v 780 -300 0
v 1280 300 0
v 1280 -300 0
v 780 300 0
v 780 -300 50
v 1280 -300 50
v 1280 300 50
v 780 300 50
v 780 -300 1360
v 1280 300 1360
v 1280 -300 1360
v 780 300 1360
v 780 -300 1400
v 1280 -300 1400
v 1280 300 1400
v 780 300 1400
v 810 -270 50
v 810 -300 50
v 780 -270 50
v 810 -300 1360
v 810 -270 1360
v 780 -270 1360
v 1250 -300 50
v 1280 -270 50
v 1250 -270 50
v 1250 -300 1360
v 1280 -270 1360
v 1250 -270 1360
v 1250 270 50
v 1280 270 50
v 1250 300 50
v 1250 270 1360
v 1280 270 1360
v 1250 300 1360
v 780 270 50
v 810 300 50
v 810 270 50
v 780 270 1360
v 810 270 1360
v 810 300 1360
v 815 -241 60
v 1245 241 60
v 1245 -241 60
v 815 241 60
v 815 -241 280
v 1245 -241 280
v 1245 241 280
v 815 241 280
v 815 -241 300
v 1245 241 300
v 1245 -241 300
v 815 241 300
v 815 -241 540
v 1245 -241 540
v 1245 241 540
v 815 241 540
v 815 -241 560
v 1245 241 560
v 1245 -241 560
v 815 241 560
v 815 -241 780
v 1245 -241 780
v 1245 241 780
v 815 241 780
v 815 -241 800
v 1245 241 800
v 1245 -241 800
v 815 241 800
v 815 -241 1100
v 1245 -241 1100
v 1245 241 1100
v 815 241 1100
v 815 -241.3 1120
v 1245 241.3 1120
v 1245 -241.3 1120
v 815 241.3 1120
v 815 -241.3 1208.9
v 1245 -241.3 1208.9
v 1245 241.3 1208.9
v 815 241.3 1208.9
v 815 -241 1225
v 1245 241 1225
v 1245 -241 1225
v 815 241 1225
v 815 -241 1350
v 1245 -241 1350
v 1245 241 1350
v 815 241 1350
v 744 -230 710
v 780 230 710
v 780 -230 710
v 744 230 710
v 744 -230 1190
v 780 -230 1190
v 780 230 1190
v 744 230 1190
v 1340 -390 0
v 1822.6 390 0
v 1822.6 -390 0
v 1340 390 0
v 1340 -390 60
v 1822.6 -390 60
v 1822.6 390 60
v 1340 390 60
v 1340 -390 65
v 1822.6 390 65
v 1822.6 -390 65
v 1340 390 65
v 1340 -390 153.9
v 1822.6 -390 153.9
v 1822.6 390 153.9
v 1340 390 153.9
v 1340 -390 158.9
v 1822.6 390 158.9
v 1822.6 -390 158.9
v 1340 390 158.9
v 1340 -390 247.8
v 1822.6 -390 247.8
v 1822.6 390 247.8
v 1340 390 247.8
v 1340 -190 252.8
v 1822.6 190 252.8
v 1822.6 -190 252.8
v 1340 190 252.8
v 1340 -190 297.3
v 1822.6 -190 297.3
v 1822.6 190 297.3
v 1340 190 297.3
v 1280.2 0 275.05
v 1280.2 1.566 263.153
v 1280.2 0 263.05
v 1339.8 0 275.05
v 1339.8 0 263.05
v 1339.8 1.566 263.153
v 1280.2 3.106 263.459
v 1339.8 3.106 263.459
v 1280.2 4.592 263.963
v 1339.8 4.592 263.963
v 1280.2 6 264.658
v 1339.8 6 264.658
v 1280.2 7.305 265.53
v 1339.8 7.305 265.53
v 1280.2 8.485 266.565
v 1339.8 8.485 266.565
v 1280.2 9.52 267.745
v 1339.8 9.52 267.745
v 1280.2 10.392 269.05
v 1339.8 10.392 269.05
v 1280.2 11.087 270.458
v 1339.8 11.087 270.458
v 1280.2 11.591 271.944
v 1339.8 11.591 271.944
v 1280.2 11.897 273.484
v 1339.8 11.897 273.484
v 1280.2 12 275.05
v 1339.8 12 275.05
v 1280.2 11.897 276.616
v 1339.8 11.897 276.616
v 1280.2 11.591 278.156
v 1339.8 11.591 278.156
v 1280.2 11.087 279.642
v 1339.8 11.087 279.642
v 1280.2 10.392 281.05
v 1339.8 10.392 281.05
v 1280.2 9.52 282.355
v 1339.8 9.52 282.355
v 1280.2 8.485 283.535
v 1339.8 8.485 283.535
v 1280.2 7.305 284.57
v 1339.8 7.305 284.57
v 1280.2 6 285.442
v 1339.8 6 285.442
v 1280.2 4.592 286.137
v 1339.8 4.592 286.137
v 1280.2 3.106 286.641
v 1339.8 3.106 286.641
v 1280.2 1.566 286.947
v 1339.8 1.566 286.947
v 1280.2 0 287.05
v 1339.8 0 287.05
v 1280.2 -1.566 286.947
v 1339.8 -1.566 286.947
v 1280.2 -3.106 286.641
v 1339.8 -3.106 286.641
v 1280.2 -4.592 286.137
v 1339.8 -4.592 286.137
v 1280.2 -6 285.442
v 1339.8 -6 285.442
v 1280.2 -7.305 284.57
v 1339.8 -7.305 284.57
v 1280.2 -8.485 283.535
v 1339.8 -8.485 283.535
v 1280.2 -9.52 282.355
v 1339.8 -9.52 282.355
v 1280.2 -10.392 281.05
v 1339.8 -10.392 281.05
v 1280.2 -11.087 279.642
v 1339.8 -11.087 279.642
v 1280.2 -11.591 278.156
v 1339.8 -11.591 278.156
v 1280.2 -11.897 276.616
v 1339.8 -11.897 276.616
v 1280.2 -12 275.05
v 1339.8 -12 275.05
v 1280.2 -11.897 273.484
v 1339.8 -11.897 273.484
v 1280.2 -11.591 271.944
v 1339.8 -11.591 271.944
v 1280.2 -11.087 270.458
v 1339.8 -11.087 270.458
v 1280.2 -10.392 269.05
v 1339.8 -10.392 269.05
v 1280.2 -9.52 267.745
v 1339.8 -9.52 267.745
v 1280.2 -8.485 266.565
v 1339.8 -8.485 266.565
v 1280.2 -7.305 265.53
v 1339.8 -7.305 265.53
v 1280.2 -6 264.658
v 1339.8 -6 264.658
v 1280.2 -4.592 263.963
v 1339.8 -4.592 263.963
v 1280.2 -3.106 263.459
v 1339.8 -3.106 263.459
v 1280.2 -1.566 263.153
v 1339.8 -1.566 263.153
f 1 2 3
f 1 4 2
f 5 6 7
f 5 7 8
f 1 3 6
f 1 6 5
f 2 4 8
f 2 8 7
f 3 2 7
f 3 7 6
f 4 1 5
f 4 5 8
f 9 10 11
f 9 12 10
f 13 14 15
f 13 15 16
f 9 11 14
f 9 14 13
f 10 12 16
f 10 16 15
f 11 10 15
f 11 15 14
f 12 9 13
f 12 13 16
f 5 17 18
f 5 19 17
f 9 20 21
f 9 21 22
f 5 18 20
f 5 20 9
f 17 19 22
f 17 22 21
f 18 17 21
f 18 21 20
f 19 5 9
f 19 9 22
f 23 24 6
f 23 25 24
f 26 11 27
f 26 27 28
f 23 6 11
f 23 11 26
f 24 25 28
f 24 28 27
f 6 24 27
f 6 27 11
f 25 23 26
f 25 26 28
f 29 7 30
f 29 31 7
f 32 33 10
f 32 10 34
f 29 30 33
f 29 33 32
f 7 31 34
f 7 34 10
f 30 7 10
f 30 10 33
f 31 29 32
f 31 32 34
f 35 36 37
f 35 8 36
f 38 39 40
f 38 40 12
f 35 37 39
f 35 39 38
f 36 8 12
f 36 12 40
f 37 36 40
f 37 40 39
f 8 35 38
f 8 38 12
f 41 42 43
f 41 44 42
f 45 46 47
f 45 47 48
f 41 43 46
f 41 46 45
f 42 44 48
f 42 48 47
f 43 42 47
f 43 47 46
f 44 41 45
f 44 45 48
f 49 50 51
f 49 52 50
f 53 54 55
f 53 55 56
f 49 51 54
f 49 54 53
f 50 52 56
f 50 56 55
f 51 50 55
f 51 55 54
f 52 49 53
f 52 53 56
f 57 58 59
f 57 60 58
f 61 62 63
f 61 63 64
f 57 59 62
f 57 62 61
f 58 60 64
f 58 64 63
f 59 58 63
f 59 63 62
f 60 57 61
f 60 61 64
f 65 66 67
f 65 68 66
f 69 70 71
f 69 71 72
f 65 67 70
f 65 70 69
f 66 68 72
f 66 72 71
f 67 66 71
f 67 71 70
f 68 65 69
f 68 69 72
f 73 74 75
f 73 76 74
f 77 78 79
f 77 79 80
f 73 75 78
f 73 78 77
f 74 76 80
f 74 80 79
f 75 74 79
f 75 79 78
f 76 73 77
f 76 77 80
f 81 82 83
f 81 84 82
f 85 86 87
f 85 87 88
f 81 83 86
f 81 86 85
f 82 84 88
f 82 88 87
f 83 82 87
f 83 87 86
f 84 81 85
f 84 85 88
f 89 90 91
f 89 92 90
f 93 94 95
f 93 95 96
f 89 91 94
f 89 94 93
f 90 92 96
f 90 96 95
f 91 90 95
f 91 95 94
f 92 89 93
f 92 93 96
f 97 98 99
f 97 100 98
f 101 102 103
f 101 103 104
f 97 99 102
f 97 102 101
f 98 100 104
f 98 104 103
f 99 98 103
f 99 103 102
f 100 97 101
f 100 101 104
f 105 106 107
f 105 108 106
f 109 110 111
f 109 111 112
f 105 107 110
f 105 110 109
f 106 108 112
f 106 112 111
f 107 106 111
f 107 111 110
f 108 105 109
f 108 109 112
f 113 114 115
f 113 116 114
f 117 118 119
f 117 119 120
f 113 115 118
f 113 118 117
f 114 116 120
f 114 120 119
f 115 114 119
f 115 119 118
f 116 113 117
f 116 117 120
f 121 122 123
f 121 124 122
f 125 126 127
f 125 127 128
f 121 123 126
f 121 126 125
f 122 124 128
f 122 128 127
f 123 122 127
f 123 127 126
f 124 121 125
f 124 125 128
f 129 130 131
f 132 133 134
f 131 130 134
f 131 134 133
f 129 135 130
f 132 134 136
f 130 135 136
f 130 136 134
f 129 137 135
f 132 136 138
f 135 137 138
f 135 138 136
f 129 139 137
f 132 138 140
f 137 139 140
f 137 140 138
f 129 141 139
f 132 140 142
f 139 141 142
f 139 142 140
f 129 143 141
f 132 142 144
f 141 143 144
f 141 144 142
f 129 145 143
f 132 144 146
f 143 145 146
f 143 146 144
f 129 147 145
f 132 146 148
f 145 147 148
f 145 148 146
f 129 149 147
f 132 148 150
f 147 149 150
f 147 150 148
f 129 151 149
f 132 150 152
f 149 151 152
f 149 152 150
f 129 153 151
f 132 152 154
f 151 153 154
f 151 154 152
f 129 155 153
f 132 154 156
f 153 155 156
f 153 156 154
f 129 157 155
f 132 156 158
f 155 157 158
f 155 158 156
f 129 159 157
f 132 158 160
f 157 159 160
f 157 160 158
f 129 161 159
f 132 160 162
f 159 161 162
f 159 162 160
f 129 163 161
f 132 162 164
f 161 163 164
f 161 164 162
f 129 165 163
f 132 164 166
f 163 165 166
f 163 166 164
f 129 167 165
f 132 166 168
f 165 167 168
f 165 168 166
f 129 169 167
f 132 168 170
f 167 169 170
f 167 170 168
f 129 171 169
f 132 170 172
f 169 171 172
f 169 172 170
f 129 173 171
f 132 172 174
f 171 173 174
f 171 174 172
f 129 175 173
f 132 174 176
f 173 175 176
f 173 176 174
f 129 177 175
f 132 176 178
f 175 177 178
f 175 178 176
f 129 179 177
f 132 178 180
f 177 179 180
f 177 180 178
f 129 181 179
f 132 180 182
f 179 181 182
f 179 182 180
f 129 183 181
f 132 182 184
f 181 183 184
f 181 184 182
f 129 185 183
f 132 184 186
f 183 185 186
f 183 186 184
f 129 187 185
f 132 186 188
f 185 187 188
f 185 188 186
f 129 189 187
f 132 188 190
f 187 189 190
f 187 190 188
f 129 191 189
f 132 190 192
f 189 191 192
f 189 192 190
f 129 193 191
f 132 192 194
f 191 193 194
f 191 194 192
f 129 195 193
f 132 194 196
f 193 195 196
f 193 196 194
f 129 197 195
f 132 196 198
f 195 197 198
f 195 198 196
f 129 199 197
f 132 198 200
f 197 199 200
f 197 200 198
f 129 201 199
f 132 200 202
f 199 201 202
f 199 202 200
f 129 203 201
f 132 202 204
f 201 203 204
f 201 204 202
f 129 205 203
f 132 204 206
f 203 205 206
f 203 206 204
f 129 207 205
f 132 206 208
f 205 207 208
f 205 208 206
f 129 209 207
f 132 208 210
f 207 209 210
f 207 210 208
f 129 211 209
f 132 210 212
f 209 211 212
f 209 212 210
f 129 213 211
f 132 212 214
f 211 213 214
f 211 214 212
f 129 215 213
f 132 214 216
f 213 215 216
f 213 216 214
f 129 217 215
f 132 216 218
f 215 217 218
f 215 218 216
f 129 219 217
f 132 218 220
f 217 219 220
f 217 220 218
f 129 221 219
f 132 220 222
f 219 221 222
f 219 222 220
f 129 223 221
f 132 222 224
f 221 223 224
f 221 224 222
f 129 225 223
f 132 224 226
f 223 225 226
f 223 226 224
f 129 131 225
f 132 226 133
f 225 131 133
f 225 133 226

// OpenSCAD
// Atom Lithography Machine (6.0-exp142-exp143-option-qhpc-locked) — S7: 19" Kontrol, S6.5 RFSoC & Exp143 S9.HPC 100G RDMA Dekoder
// Drawing No: ALM-600-S7 | Units: mm | Tol: ISO 2768-mK
// Generated by gen_scad.py from params.py — DO NOT EDIT DIRECTLY.
$fn = 48;

module s7_electronics_rack_interconnect() {
  // s7_rack_base [S7.1] 19" Kabin Taban Şasisi (rack_chassis, ±0.5 mm)
  color([0.216, 0.255, 0.318], 1.0) translate([1030.0, 0.0, 25.0])
    cube([500.0, 600.0, 50.0], center=true);
  // s7_rack_top [S7.1] 19" Kabin Üst Tavan & Fan Ünitesi (rack_chassis, ±0.5 mm)
  color([0.216, 0.255, 0.318], 1.0) translate([1030.0, 0.0, 1380.0])
    cube([500.0, 600.0, 40.0], center=true);
  // s7_rack_post_1 [S7.1] 19" Kabin Köşe Dikmesi #1 (rack_chassis, ±0.5 mm)
  color([0.216, 0.255, 0.318], 1.0) translate([795.0, -285.0, 705.0])
    cube([30.0, 30.0, 1310.0], center=true);
  // s7_rack_post_2 [S7.1] 19" Kabin Köşe Dikmesi #2 (rack_chassis, ±0.5 mm)
  color([0.216, 0.255, 0.318], 1.0) translate([1265.0, -285.0, 705.0])
    cube([30.0, 30.0, 1310.0], center=true);
  // s7_rack_post_3 [S7.1] 19" Kabin Köşe Dikmesi #3 (rack_chassis, ±0.5 mm)
  color([0.216, 0.255, 0.318], 1.0) translate([1265.0, 285.0, 705.0])
    cube([30.0, 30.0, 1310.0], center=true);
  // s7_rack_post_4 [S7.1] 19" Kabin Köşe Dikmesi #4 (rack_chassis, ±0.5 mm)
  color([0.216, 0.255, 0.318], 1.0) translate([795.0, 285.0, 705.0])
    cube([30.0, 30.0, 1310.0], center=true);
  // s7_psu_hv_bay [S7.4] ±5 kV Kolon HV & 8-Bobin Mıknatıs PSU (rack_psu, ±0.5 mm)
  color([0.259, 0.314, 0.369], 1.0) translate([1030.0, 0.0, 170.0])
    cube([430.0, 482.0, 220.0], center=true);
  // s7_host_gpu_server [S7.1] Ana Kontrol Sunucusu & GRAPE/CellISA GPU (rack_steel, ±0.5 mm)
  color([0.306, 0.365, 0.424], 1.0) translate([1030.0, 0.0, 420.0])
    cube([430.0, 482.0, 240.0], center=true);
  // s7_fpga_blanker_bay [S7.3] FPGA Blanker/IBIC Sayım Kapısı & Servo DSP (rack_fpga, ±0.2 mm)
  color([0.18, 0.49, 0.322], 1.0) translate([1030.0, 0.0, 670.0])
    cube([430.0, 482.0, 220.0], center=true);
  // s7_awg_rf_mw_bay [S7.2] Çok-Kanallı AWG & 56–82 Zincir RF/MW Sentezi (rack_awg, ±0.2 mm)
  color([0.161, 0.502, 0.725], 1.0) translate([1030.0, 0.0, 950.0])
    cube([430.0, 482.0, 300.0], center=true);
  // s7_s65_rfsoc_boed_bay [S6.5] S6.5-01 2U ZU48DR Q16.16 BOED-RFSoC (32 RF Zincir) (rack_fpga, ±0.2 mm)
  color([0.18, 0.49, 0.322], 1.0) translate([1030.0, 0.0, 1164.45])
    cube([430.0, 482.6, 88.9], center=true);
  // s7_clock_sync_bay [S7.4] 3U 10 MHz Rb Saat Dağıtımı & Kriyo Termometri (rack_clock, ±0.2 mm)
  color([0.71, 0.537, 0.0], 1.0) translate([1030.0, 0.0, 1287.5])
    cube([430.0, 482.0, 125.0], center=true);
  // s7_feedthrough_panel [S7.4] Kriyo / UHV / RF Geçiş Yama Paneli (al6061, ±0.2 mm)
  color([0.714, 0.776, 0.831], 1.0) translate([762.0, 0.0, 950.0])
    cube([36.0, 460.0, 480.0], center=true);
  // s7_s9hpc_rail_psu_kit [S9.HPC] S9.HPC-03 2,6 kW Yedekli PSU & 19" Kızak Tabanı (rack_psu, ±0.5 mm)
  color([0.259, 0.314, 0.369], 1.0) translate([1581.3, 0.0, 30.0])
    cube([482.6, 780.0, 60.0], center=true);
  // s7_s9hpc_decoder_node_1 [S9.HPC] S9.HPC-01 2U QEC Dekoder Düğümü #1 (100G RDMA) (rack_steel, ±0.2 mm)
  color([0.306, 0.365, 0.424], 1.0) translate([1581.3, 0.0, 109.45])
    cube([482.6, 780.0, 88.9], center=true);
  // s7_s9hpc_decoder_node_2 [S9.HPC] S9.HPC-01 2U QEC Dekoder Düğümü #2 (100G RDMA) (rack_steel, ±0.2 mm)
  color([0.306, 0.365, 0.424], 1.0) translate([1581.3, 0.0, 203.35])
    cube([482.6, 780.0, 88.9], center=true);
  // s7_s9hpc_rocev2_switch [S9.HPC] S9.HPC-02 1U 100 GbE RoCEv2 Optik Anahtar (rack_awg, ±0.2 mm)
  color([0.161, 0.502, 0.725], 1.0) translate([1581.3, 0.0, 275.05])
    cube([482.6, 380.0, 44.5], center=true);
  // s7_s9hpc_qsfp28_fiber_duct [S9.HPC] S9.HPC-02 4× QSFP28-100G OM4 Fiber Köprüsü (al6061, ±0.2 mm)
  color([0.714, 0.776, 0.831], 1.0) translate([1310.0, 0.0, 275.05])
    rotate([0, 90, 0]) cylinder(r=12.0, h=59.6, center=true);
}

// Standalone preview (comment out when `use <...>` imported)
s7_electronics_rack_interconnect();
